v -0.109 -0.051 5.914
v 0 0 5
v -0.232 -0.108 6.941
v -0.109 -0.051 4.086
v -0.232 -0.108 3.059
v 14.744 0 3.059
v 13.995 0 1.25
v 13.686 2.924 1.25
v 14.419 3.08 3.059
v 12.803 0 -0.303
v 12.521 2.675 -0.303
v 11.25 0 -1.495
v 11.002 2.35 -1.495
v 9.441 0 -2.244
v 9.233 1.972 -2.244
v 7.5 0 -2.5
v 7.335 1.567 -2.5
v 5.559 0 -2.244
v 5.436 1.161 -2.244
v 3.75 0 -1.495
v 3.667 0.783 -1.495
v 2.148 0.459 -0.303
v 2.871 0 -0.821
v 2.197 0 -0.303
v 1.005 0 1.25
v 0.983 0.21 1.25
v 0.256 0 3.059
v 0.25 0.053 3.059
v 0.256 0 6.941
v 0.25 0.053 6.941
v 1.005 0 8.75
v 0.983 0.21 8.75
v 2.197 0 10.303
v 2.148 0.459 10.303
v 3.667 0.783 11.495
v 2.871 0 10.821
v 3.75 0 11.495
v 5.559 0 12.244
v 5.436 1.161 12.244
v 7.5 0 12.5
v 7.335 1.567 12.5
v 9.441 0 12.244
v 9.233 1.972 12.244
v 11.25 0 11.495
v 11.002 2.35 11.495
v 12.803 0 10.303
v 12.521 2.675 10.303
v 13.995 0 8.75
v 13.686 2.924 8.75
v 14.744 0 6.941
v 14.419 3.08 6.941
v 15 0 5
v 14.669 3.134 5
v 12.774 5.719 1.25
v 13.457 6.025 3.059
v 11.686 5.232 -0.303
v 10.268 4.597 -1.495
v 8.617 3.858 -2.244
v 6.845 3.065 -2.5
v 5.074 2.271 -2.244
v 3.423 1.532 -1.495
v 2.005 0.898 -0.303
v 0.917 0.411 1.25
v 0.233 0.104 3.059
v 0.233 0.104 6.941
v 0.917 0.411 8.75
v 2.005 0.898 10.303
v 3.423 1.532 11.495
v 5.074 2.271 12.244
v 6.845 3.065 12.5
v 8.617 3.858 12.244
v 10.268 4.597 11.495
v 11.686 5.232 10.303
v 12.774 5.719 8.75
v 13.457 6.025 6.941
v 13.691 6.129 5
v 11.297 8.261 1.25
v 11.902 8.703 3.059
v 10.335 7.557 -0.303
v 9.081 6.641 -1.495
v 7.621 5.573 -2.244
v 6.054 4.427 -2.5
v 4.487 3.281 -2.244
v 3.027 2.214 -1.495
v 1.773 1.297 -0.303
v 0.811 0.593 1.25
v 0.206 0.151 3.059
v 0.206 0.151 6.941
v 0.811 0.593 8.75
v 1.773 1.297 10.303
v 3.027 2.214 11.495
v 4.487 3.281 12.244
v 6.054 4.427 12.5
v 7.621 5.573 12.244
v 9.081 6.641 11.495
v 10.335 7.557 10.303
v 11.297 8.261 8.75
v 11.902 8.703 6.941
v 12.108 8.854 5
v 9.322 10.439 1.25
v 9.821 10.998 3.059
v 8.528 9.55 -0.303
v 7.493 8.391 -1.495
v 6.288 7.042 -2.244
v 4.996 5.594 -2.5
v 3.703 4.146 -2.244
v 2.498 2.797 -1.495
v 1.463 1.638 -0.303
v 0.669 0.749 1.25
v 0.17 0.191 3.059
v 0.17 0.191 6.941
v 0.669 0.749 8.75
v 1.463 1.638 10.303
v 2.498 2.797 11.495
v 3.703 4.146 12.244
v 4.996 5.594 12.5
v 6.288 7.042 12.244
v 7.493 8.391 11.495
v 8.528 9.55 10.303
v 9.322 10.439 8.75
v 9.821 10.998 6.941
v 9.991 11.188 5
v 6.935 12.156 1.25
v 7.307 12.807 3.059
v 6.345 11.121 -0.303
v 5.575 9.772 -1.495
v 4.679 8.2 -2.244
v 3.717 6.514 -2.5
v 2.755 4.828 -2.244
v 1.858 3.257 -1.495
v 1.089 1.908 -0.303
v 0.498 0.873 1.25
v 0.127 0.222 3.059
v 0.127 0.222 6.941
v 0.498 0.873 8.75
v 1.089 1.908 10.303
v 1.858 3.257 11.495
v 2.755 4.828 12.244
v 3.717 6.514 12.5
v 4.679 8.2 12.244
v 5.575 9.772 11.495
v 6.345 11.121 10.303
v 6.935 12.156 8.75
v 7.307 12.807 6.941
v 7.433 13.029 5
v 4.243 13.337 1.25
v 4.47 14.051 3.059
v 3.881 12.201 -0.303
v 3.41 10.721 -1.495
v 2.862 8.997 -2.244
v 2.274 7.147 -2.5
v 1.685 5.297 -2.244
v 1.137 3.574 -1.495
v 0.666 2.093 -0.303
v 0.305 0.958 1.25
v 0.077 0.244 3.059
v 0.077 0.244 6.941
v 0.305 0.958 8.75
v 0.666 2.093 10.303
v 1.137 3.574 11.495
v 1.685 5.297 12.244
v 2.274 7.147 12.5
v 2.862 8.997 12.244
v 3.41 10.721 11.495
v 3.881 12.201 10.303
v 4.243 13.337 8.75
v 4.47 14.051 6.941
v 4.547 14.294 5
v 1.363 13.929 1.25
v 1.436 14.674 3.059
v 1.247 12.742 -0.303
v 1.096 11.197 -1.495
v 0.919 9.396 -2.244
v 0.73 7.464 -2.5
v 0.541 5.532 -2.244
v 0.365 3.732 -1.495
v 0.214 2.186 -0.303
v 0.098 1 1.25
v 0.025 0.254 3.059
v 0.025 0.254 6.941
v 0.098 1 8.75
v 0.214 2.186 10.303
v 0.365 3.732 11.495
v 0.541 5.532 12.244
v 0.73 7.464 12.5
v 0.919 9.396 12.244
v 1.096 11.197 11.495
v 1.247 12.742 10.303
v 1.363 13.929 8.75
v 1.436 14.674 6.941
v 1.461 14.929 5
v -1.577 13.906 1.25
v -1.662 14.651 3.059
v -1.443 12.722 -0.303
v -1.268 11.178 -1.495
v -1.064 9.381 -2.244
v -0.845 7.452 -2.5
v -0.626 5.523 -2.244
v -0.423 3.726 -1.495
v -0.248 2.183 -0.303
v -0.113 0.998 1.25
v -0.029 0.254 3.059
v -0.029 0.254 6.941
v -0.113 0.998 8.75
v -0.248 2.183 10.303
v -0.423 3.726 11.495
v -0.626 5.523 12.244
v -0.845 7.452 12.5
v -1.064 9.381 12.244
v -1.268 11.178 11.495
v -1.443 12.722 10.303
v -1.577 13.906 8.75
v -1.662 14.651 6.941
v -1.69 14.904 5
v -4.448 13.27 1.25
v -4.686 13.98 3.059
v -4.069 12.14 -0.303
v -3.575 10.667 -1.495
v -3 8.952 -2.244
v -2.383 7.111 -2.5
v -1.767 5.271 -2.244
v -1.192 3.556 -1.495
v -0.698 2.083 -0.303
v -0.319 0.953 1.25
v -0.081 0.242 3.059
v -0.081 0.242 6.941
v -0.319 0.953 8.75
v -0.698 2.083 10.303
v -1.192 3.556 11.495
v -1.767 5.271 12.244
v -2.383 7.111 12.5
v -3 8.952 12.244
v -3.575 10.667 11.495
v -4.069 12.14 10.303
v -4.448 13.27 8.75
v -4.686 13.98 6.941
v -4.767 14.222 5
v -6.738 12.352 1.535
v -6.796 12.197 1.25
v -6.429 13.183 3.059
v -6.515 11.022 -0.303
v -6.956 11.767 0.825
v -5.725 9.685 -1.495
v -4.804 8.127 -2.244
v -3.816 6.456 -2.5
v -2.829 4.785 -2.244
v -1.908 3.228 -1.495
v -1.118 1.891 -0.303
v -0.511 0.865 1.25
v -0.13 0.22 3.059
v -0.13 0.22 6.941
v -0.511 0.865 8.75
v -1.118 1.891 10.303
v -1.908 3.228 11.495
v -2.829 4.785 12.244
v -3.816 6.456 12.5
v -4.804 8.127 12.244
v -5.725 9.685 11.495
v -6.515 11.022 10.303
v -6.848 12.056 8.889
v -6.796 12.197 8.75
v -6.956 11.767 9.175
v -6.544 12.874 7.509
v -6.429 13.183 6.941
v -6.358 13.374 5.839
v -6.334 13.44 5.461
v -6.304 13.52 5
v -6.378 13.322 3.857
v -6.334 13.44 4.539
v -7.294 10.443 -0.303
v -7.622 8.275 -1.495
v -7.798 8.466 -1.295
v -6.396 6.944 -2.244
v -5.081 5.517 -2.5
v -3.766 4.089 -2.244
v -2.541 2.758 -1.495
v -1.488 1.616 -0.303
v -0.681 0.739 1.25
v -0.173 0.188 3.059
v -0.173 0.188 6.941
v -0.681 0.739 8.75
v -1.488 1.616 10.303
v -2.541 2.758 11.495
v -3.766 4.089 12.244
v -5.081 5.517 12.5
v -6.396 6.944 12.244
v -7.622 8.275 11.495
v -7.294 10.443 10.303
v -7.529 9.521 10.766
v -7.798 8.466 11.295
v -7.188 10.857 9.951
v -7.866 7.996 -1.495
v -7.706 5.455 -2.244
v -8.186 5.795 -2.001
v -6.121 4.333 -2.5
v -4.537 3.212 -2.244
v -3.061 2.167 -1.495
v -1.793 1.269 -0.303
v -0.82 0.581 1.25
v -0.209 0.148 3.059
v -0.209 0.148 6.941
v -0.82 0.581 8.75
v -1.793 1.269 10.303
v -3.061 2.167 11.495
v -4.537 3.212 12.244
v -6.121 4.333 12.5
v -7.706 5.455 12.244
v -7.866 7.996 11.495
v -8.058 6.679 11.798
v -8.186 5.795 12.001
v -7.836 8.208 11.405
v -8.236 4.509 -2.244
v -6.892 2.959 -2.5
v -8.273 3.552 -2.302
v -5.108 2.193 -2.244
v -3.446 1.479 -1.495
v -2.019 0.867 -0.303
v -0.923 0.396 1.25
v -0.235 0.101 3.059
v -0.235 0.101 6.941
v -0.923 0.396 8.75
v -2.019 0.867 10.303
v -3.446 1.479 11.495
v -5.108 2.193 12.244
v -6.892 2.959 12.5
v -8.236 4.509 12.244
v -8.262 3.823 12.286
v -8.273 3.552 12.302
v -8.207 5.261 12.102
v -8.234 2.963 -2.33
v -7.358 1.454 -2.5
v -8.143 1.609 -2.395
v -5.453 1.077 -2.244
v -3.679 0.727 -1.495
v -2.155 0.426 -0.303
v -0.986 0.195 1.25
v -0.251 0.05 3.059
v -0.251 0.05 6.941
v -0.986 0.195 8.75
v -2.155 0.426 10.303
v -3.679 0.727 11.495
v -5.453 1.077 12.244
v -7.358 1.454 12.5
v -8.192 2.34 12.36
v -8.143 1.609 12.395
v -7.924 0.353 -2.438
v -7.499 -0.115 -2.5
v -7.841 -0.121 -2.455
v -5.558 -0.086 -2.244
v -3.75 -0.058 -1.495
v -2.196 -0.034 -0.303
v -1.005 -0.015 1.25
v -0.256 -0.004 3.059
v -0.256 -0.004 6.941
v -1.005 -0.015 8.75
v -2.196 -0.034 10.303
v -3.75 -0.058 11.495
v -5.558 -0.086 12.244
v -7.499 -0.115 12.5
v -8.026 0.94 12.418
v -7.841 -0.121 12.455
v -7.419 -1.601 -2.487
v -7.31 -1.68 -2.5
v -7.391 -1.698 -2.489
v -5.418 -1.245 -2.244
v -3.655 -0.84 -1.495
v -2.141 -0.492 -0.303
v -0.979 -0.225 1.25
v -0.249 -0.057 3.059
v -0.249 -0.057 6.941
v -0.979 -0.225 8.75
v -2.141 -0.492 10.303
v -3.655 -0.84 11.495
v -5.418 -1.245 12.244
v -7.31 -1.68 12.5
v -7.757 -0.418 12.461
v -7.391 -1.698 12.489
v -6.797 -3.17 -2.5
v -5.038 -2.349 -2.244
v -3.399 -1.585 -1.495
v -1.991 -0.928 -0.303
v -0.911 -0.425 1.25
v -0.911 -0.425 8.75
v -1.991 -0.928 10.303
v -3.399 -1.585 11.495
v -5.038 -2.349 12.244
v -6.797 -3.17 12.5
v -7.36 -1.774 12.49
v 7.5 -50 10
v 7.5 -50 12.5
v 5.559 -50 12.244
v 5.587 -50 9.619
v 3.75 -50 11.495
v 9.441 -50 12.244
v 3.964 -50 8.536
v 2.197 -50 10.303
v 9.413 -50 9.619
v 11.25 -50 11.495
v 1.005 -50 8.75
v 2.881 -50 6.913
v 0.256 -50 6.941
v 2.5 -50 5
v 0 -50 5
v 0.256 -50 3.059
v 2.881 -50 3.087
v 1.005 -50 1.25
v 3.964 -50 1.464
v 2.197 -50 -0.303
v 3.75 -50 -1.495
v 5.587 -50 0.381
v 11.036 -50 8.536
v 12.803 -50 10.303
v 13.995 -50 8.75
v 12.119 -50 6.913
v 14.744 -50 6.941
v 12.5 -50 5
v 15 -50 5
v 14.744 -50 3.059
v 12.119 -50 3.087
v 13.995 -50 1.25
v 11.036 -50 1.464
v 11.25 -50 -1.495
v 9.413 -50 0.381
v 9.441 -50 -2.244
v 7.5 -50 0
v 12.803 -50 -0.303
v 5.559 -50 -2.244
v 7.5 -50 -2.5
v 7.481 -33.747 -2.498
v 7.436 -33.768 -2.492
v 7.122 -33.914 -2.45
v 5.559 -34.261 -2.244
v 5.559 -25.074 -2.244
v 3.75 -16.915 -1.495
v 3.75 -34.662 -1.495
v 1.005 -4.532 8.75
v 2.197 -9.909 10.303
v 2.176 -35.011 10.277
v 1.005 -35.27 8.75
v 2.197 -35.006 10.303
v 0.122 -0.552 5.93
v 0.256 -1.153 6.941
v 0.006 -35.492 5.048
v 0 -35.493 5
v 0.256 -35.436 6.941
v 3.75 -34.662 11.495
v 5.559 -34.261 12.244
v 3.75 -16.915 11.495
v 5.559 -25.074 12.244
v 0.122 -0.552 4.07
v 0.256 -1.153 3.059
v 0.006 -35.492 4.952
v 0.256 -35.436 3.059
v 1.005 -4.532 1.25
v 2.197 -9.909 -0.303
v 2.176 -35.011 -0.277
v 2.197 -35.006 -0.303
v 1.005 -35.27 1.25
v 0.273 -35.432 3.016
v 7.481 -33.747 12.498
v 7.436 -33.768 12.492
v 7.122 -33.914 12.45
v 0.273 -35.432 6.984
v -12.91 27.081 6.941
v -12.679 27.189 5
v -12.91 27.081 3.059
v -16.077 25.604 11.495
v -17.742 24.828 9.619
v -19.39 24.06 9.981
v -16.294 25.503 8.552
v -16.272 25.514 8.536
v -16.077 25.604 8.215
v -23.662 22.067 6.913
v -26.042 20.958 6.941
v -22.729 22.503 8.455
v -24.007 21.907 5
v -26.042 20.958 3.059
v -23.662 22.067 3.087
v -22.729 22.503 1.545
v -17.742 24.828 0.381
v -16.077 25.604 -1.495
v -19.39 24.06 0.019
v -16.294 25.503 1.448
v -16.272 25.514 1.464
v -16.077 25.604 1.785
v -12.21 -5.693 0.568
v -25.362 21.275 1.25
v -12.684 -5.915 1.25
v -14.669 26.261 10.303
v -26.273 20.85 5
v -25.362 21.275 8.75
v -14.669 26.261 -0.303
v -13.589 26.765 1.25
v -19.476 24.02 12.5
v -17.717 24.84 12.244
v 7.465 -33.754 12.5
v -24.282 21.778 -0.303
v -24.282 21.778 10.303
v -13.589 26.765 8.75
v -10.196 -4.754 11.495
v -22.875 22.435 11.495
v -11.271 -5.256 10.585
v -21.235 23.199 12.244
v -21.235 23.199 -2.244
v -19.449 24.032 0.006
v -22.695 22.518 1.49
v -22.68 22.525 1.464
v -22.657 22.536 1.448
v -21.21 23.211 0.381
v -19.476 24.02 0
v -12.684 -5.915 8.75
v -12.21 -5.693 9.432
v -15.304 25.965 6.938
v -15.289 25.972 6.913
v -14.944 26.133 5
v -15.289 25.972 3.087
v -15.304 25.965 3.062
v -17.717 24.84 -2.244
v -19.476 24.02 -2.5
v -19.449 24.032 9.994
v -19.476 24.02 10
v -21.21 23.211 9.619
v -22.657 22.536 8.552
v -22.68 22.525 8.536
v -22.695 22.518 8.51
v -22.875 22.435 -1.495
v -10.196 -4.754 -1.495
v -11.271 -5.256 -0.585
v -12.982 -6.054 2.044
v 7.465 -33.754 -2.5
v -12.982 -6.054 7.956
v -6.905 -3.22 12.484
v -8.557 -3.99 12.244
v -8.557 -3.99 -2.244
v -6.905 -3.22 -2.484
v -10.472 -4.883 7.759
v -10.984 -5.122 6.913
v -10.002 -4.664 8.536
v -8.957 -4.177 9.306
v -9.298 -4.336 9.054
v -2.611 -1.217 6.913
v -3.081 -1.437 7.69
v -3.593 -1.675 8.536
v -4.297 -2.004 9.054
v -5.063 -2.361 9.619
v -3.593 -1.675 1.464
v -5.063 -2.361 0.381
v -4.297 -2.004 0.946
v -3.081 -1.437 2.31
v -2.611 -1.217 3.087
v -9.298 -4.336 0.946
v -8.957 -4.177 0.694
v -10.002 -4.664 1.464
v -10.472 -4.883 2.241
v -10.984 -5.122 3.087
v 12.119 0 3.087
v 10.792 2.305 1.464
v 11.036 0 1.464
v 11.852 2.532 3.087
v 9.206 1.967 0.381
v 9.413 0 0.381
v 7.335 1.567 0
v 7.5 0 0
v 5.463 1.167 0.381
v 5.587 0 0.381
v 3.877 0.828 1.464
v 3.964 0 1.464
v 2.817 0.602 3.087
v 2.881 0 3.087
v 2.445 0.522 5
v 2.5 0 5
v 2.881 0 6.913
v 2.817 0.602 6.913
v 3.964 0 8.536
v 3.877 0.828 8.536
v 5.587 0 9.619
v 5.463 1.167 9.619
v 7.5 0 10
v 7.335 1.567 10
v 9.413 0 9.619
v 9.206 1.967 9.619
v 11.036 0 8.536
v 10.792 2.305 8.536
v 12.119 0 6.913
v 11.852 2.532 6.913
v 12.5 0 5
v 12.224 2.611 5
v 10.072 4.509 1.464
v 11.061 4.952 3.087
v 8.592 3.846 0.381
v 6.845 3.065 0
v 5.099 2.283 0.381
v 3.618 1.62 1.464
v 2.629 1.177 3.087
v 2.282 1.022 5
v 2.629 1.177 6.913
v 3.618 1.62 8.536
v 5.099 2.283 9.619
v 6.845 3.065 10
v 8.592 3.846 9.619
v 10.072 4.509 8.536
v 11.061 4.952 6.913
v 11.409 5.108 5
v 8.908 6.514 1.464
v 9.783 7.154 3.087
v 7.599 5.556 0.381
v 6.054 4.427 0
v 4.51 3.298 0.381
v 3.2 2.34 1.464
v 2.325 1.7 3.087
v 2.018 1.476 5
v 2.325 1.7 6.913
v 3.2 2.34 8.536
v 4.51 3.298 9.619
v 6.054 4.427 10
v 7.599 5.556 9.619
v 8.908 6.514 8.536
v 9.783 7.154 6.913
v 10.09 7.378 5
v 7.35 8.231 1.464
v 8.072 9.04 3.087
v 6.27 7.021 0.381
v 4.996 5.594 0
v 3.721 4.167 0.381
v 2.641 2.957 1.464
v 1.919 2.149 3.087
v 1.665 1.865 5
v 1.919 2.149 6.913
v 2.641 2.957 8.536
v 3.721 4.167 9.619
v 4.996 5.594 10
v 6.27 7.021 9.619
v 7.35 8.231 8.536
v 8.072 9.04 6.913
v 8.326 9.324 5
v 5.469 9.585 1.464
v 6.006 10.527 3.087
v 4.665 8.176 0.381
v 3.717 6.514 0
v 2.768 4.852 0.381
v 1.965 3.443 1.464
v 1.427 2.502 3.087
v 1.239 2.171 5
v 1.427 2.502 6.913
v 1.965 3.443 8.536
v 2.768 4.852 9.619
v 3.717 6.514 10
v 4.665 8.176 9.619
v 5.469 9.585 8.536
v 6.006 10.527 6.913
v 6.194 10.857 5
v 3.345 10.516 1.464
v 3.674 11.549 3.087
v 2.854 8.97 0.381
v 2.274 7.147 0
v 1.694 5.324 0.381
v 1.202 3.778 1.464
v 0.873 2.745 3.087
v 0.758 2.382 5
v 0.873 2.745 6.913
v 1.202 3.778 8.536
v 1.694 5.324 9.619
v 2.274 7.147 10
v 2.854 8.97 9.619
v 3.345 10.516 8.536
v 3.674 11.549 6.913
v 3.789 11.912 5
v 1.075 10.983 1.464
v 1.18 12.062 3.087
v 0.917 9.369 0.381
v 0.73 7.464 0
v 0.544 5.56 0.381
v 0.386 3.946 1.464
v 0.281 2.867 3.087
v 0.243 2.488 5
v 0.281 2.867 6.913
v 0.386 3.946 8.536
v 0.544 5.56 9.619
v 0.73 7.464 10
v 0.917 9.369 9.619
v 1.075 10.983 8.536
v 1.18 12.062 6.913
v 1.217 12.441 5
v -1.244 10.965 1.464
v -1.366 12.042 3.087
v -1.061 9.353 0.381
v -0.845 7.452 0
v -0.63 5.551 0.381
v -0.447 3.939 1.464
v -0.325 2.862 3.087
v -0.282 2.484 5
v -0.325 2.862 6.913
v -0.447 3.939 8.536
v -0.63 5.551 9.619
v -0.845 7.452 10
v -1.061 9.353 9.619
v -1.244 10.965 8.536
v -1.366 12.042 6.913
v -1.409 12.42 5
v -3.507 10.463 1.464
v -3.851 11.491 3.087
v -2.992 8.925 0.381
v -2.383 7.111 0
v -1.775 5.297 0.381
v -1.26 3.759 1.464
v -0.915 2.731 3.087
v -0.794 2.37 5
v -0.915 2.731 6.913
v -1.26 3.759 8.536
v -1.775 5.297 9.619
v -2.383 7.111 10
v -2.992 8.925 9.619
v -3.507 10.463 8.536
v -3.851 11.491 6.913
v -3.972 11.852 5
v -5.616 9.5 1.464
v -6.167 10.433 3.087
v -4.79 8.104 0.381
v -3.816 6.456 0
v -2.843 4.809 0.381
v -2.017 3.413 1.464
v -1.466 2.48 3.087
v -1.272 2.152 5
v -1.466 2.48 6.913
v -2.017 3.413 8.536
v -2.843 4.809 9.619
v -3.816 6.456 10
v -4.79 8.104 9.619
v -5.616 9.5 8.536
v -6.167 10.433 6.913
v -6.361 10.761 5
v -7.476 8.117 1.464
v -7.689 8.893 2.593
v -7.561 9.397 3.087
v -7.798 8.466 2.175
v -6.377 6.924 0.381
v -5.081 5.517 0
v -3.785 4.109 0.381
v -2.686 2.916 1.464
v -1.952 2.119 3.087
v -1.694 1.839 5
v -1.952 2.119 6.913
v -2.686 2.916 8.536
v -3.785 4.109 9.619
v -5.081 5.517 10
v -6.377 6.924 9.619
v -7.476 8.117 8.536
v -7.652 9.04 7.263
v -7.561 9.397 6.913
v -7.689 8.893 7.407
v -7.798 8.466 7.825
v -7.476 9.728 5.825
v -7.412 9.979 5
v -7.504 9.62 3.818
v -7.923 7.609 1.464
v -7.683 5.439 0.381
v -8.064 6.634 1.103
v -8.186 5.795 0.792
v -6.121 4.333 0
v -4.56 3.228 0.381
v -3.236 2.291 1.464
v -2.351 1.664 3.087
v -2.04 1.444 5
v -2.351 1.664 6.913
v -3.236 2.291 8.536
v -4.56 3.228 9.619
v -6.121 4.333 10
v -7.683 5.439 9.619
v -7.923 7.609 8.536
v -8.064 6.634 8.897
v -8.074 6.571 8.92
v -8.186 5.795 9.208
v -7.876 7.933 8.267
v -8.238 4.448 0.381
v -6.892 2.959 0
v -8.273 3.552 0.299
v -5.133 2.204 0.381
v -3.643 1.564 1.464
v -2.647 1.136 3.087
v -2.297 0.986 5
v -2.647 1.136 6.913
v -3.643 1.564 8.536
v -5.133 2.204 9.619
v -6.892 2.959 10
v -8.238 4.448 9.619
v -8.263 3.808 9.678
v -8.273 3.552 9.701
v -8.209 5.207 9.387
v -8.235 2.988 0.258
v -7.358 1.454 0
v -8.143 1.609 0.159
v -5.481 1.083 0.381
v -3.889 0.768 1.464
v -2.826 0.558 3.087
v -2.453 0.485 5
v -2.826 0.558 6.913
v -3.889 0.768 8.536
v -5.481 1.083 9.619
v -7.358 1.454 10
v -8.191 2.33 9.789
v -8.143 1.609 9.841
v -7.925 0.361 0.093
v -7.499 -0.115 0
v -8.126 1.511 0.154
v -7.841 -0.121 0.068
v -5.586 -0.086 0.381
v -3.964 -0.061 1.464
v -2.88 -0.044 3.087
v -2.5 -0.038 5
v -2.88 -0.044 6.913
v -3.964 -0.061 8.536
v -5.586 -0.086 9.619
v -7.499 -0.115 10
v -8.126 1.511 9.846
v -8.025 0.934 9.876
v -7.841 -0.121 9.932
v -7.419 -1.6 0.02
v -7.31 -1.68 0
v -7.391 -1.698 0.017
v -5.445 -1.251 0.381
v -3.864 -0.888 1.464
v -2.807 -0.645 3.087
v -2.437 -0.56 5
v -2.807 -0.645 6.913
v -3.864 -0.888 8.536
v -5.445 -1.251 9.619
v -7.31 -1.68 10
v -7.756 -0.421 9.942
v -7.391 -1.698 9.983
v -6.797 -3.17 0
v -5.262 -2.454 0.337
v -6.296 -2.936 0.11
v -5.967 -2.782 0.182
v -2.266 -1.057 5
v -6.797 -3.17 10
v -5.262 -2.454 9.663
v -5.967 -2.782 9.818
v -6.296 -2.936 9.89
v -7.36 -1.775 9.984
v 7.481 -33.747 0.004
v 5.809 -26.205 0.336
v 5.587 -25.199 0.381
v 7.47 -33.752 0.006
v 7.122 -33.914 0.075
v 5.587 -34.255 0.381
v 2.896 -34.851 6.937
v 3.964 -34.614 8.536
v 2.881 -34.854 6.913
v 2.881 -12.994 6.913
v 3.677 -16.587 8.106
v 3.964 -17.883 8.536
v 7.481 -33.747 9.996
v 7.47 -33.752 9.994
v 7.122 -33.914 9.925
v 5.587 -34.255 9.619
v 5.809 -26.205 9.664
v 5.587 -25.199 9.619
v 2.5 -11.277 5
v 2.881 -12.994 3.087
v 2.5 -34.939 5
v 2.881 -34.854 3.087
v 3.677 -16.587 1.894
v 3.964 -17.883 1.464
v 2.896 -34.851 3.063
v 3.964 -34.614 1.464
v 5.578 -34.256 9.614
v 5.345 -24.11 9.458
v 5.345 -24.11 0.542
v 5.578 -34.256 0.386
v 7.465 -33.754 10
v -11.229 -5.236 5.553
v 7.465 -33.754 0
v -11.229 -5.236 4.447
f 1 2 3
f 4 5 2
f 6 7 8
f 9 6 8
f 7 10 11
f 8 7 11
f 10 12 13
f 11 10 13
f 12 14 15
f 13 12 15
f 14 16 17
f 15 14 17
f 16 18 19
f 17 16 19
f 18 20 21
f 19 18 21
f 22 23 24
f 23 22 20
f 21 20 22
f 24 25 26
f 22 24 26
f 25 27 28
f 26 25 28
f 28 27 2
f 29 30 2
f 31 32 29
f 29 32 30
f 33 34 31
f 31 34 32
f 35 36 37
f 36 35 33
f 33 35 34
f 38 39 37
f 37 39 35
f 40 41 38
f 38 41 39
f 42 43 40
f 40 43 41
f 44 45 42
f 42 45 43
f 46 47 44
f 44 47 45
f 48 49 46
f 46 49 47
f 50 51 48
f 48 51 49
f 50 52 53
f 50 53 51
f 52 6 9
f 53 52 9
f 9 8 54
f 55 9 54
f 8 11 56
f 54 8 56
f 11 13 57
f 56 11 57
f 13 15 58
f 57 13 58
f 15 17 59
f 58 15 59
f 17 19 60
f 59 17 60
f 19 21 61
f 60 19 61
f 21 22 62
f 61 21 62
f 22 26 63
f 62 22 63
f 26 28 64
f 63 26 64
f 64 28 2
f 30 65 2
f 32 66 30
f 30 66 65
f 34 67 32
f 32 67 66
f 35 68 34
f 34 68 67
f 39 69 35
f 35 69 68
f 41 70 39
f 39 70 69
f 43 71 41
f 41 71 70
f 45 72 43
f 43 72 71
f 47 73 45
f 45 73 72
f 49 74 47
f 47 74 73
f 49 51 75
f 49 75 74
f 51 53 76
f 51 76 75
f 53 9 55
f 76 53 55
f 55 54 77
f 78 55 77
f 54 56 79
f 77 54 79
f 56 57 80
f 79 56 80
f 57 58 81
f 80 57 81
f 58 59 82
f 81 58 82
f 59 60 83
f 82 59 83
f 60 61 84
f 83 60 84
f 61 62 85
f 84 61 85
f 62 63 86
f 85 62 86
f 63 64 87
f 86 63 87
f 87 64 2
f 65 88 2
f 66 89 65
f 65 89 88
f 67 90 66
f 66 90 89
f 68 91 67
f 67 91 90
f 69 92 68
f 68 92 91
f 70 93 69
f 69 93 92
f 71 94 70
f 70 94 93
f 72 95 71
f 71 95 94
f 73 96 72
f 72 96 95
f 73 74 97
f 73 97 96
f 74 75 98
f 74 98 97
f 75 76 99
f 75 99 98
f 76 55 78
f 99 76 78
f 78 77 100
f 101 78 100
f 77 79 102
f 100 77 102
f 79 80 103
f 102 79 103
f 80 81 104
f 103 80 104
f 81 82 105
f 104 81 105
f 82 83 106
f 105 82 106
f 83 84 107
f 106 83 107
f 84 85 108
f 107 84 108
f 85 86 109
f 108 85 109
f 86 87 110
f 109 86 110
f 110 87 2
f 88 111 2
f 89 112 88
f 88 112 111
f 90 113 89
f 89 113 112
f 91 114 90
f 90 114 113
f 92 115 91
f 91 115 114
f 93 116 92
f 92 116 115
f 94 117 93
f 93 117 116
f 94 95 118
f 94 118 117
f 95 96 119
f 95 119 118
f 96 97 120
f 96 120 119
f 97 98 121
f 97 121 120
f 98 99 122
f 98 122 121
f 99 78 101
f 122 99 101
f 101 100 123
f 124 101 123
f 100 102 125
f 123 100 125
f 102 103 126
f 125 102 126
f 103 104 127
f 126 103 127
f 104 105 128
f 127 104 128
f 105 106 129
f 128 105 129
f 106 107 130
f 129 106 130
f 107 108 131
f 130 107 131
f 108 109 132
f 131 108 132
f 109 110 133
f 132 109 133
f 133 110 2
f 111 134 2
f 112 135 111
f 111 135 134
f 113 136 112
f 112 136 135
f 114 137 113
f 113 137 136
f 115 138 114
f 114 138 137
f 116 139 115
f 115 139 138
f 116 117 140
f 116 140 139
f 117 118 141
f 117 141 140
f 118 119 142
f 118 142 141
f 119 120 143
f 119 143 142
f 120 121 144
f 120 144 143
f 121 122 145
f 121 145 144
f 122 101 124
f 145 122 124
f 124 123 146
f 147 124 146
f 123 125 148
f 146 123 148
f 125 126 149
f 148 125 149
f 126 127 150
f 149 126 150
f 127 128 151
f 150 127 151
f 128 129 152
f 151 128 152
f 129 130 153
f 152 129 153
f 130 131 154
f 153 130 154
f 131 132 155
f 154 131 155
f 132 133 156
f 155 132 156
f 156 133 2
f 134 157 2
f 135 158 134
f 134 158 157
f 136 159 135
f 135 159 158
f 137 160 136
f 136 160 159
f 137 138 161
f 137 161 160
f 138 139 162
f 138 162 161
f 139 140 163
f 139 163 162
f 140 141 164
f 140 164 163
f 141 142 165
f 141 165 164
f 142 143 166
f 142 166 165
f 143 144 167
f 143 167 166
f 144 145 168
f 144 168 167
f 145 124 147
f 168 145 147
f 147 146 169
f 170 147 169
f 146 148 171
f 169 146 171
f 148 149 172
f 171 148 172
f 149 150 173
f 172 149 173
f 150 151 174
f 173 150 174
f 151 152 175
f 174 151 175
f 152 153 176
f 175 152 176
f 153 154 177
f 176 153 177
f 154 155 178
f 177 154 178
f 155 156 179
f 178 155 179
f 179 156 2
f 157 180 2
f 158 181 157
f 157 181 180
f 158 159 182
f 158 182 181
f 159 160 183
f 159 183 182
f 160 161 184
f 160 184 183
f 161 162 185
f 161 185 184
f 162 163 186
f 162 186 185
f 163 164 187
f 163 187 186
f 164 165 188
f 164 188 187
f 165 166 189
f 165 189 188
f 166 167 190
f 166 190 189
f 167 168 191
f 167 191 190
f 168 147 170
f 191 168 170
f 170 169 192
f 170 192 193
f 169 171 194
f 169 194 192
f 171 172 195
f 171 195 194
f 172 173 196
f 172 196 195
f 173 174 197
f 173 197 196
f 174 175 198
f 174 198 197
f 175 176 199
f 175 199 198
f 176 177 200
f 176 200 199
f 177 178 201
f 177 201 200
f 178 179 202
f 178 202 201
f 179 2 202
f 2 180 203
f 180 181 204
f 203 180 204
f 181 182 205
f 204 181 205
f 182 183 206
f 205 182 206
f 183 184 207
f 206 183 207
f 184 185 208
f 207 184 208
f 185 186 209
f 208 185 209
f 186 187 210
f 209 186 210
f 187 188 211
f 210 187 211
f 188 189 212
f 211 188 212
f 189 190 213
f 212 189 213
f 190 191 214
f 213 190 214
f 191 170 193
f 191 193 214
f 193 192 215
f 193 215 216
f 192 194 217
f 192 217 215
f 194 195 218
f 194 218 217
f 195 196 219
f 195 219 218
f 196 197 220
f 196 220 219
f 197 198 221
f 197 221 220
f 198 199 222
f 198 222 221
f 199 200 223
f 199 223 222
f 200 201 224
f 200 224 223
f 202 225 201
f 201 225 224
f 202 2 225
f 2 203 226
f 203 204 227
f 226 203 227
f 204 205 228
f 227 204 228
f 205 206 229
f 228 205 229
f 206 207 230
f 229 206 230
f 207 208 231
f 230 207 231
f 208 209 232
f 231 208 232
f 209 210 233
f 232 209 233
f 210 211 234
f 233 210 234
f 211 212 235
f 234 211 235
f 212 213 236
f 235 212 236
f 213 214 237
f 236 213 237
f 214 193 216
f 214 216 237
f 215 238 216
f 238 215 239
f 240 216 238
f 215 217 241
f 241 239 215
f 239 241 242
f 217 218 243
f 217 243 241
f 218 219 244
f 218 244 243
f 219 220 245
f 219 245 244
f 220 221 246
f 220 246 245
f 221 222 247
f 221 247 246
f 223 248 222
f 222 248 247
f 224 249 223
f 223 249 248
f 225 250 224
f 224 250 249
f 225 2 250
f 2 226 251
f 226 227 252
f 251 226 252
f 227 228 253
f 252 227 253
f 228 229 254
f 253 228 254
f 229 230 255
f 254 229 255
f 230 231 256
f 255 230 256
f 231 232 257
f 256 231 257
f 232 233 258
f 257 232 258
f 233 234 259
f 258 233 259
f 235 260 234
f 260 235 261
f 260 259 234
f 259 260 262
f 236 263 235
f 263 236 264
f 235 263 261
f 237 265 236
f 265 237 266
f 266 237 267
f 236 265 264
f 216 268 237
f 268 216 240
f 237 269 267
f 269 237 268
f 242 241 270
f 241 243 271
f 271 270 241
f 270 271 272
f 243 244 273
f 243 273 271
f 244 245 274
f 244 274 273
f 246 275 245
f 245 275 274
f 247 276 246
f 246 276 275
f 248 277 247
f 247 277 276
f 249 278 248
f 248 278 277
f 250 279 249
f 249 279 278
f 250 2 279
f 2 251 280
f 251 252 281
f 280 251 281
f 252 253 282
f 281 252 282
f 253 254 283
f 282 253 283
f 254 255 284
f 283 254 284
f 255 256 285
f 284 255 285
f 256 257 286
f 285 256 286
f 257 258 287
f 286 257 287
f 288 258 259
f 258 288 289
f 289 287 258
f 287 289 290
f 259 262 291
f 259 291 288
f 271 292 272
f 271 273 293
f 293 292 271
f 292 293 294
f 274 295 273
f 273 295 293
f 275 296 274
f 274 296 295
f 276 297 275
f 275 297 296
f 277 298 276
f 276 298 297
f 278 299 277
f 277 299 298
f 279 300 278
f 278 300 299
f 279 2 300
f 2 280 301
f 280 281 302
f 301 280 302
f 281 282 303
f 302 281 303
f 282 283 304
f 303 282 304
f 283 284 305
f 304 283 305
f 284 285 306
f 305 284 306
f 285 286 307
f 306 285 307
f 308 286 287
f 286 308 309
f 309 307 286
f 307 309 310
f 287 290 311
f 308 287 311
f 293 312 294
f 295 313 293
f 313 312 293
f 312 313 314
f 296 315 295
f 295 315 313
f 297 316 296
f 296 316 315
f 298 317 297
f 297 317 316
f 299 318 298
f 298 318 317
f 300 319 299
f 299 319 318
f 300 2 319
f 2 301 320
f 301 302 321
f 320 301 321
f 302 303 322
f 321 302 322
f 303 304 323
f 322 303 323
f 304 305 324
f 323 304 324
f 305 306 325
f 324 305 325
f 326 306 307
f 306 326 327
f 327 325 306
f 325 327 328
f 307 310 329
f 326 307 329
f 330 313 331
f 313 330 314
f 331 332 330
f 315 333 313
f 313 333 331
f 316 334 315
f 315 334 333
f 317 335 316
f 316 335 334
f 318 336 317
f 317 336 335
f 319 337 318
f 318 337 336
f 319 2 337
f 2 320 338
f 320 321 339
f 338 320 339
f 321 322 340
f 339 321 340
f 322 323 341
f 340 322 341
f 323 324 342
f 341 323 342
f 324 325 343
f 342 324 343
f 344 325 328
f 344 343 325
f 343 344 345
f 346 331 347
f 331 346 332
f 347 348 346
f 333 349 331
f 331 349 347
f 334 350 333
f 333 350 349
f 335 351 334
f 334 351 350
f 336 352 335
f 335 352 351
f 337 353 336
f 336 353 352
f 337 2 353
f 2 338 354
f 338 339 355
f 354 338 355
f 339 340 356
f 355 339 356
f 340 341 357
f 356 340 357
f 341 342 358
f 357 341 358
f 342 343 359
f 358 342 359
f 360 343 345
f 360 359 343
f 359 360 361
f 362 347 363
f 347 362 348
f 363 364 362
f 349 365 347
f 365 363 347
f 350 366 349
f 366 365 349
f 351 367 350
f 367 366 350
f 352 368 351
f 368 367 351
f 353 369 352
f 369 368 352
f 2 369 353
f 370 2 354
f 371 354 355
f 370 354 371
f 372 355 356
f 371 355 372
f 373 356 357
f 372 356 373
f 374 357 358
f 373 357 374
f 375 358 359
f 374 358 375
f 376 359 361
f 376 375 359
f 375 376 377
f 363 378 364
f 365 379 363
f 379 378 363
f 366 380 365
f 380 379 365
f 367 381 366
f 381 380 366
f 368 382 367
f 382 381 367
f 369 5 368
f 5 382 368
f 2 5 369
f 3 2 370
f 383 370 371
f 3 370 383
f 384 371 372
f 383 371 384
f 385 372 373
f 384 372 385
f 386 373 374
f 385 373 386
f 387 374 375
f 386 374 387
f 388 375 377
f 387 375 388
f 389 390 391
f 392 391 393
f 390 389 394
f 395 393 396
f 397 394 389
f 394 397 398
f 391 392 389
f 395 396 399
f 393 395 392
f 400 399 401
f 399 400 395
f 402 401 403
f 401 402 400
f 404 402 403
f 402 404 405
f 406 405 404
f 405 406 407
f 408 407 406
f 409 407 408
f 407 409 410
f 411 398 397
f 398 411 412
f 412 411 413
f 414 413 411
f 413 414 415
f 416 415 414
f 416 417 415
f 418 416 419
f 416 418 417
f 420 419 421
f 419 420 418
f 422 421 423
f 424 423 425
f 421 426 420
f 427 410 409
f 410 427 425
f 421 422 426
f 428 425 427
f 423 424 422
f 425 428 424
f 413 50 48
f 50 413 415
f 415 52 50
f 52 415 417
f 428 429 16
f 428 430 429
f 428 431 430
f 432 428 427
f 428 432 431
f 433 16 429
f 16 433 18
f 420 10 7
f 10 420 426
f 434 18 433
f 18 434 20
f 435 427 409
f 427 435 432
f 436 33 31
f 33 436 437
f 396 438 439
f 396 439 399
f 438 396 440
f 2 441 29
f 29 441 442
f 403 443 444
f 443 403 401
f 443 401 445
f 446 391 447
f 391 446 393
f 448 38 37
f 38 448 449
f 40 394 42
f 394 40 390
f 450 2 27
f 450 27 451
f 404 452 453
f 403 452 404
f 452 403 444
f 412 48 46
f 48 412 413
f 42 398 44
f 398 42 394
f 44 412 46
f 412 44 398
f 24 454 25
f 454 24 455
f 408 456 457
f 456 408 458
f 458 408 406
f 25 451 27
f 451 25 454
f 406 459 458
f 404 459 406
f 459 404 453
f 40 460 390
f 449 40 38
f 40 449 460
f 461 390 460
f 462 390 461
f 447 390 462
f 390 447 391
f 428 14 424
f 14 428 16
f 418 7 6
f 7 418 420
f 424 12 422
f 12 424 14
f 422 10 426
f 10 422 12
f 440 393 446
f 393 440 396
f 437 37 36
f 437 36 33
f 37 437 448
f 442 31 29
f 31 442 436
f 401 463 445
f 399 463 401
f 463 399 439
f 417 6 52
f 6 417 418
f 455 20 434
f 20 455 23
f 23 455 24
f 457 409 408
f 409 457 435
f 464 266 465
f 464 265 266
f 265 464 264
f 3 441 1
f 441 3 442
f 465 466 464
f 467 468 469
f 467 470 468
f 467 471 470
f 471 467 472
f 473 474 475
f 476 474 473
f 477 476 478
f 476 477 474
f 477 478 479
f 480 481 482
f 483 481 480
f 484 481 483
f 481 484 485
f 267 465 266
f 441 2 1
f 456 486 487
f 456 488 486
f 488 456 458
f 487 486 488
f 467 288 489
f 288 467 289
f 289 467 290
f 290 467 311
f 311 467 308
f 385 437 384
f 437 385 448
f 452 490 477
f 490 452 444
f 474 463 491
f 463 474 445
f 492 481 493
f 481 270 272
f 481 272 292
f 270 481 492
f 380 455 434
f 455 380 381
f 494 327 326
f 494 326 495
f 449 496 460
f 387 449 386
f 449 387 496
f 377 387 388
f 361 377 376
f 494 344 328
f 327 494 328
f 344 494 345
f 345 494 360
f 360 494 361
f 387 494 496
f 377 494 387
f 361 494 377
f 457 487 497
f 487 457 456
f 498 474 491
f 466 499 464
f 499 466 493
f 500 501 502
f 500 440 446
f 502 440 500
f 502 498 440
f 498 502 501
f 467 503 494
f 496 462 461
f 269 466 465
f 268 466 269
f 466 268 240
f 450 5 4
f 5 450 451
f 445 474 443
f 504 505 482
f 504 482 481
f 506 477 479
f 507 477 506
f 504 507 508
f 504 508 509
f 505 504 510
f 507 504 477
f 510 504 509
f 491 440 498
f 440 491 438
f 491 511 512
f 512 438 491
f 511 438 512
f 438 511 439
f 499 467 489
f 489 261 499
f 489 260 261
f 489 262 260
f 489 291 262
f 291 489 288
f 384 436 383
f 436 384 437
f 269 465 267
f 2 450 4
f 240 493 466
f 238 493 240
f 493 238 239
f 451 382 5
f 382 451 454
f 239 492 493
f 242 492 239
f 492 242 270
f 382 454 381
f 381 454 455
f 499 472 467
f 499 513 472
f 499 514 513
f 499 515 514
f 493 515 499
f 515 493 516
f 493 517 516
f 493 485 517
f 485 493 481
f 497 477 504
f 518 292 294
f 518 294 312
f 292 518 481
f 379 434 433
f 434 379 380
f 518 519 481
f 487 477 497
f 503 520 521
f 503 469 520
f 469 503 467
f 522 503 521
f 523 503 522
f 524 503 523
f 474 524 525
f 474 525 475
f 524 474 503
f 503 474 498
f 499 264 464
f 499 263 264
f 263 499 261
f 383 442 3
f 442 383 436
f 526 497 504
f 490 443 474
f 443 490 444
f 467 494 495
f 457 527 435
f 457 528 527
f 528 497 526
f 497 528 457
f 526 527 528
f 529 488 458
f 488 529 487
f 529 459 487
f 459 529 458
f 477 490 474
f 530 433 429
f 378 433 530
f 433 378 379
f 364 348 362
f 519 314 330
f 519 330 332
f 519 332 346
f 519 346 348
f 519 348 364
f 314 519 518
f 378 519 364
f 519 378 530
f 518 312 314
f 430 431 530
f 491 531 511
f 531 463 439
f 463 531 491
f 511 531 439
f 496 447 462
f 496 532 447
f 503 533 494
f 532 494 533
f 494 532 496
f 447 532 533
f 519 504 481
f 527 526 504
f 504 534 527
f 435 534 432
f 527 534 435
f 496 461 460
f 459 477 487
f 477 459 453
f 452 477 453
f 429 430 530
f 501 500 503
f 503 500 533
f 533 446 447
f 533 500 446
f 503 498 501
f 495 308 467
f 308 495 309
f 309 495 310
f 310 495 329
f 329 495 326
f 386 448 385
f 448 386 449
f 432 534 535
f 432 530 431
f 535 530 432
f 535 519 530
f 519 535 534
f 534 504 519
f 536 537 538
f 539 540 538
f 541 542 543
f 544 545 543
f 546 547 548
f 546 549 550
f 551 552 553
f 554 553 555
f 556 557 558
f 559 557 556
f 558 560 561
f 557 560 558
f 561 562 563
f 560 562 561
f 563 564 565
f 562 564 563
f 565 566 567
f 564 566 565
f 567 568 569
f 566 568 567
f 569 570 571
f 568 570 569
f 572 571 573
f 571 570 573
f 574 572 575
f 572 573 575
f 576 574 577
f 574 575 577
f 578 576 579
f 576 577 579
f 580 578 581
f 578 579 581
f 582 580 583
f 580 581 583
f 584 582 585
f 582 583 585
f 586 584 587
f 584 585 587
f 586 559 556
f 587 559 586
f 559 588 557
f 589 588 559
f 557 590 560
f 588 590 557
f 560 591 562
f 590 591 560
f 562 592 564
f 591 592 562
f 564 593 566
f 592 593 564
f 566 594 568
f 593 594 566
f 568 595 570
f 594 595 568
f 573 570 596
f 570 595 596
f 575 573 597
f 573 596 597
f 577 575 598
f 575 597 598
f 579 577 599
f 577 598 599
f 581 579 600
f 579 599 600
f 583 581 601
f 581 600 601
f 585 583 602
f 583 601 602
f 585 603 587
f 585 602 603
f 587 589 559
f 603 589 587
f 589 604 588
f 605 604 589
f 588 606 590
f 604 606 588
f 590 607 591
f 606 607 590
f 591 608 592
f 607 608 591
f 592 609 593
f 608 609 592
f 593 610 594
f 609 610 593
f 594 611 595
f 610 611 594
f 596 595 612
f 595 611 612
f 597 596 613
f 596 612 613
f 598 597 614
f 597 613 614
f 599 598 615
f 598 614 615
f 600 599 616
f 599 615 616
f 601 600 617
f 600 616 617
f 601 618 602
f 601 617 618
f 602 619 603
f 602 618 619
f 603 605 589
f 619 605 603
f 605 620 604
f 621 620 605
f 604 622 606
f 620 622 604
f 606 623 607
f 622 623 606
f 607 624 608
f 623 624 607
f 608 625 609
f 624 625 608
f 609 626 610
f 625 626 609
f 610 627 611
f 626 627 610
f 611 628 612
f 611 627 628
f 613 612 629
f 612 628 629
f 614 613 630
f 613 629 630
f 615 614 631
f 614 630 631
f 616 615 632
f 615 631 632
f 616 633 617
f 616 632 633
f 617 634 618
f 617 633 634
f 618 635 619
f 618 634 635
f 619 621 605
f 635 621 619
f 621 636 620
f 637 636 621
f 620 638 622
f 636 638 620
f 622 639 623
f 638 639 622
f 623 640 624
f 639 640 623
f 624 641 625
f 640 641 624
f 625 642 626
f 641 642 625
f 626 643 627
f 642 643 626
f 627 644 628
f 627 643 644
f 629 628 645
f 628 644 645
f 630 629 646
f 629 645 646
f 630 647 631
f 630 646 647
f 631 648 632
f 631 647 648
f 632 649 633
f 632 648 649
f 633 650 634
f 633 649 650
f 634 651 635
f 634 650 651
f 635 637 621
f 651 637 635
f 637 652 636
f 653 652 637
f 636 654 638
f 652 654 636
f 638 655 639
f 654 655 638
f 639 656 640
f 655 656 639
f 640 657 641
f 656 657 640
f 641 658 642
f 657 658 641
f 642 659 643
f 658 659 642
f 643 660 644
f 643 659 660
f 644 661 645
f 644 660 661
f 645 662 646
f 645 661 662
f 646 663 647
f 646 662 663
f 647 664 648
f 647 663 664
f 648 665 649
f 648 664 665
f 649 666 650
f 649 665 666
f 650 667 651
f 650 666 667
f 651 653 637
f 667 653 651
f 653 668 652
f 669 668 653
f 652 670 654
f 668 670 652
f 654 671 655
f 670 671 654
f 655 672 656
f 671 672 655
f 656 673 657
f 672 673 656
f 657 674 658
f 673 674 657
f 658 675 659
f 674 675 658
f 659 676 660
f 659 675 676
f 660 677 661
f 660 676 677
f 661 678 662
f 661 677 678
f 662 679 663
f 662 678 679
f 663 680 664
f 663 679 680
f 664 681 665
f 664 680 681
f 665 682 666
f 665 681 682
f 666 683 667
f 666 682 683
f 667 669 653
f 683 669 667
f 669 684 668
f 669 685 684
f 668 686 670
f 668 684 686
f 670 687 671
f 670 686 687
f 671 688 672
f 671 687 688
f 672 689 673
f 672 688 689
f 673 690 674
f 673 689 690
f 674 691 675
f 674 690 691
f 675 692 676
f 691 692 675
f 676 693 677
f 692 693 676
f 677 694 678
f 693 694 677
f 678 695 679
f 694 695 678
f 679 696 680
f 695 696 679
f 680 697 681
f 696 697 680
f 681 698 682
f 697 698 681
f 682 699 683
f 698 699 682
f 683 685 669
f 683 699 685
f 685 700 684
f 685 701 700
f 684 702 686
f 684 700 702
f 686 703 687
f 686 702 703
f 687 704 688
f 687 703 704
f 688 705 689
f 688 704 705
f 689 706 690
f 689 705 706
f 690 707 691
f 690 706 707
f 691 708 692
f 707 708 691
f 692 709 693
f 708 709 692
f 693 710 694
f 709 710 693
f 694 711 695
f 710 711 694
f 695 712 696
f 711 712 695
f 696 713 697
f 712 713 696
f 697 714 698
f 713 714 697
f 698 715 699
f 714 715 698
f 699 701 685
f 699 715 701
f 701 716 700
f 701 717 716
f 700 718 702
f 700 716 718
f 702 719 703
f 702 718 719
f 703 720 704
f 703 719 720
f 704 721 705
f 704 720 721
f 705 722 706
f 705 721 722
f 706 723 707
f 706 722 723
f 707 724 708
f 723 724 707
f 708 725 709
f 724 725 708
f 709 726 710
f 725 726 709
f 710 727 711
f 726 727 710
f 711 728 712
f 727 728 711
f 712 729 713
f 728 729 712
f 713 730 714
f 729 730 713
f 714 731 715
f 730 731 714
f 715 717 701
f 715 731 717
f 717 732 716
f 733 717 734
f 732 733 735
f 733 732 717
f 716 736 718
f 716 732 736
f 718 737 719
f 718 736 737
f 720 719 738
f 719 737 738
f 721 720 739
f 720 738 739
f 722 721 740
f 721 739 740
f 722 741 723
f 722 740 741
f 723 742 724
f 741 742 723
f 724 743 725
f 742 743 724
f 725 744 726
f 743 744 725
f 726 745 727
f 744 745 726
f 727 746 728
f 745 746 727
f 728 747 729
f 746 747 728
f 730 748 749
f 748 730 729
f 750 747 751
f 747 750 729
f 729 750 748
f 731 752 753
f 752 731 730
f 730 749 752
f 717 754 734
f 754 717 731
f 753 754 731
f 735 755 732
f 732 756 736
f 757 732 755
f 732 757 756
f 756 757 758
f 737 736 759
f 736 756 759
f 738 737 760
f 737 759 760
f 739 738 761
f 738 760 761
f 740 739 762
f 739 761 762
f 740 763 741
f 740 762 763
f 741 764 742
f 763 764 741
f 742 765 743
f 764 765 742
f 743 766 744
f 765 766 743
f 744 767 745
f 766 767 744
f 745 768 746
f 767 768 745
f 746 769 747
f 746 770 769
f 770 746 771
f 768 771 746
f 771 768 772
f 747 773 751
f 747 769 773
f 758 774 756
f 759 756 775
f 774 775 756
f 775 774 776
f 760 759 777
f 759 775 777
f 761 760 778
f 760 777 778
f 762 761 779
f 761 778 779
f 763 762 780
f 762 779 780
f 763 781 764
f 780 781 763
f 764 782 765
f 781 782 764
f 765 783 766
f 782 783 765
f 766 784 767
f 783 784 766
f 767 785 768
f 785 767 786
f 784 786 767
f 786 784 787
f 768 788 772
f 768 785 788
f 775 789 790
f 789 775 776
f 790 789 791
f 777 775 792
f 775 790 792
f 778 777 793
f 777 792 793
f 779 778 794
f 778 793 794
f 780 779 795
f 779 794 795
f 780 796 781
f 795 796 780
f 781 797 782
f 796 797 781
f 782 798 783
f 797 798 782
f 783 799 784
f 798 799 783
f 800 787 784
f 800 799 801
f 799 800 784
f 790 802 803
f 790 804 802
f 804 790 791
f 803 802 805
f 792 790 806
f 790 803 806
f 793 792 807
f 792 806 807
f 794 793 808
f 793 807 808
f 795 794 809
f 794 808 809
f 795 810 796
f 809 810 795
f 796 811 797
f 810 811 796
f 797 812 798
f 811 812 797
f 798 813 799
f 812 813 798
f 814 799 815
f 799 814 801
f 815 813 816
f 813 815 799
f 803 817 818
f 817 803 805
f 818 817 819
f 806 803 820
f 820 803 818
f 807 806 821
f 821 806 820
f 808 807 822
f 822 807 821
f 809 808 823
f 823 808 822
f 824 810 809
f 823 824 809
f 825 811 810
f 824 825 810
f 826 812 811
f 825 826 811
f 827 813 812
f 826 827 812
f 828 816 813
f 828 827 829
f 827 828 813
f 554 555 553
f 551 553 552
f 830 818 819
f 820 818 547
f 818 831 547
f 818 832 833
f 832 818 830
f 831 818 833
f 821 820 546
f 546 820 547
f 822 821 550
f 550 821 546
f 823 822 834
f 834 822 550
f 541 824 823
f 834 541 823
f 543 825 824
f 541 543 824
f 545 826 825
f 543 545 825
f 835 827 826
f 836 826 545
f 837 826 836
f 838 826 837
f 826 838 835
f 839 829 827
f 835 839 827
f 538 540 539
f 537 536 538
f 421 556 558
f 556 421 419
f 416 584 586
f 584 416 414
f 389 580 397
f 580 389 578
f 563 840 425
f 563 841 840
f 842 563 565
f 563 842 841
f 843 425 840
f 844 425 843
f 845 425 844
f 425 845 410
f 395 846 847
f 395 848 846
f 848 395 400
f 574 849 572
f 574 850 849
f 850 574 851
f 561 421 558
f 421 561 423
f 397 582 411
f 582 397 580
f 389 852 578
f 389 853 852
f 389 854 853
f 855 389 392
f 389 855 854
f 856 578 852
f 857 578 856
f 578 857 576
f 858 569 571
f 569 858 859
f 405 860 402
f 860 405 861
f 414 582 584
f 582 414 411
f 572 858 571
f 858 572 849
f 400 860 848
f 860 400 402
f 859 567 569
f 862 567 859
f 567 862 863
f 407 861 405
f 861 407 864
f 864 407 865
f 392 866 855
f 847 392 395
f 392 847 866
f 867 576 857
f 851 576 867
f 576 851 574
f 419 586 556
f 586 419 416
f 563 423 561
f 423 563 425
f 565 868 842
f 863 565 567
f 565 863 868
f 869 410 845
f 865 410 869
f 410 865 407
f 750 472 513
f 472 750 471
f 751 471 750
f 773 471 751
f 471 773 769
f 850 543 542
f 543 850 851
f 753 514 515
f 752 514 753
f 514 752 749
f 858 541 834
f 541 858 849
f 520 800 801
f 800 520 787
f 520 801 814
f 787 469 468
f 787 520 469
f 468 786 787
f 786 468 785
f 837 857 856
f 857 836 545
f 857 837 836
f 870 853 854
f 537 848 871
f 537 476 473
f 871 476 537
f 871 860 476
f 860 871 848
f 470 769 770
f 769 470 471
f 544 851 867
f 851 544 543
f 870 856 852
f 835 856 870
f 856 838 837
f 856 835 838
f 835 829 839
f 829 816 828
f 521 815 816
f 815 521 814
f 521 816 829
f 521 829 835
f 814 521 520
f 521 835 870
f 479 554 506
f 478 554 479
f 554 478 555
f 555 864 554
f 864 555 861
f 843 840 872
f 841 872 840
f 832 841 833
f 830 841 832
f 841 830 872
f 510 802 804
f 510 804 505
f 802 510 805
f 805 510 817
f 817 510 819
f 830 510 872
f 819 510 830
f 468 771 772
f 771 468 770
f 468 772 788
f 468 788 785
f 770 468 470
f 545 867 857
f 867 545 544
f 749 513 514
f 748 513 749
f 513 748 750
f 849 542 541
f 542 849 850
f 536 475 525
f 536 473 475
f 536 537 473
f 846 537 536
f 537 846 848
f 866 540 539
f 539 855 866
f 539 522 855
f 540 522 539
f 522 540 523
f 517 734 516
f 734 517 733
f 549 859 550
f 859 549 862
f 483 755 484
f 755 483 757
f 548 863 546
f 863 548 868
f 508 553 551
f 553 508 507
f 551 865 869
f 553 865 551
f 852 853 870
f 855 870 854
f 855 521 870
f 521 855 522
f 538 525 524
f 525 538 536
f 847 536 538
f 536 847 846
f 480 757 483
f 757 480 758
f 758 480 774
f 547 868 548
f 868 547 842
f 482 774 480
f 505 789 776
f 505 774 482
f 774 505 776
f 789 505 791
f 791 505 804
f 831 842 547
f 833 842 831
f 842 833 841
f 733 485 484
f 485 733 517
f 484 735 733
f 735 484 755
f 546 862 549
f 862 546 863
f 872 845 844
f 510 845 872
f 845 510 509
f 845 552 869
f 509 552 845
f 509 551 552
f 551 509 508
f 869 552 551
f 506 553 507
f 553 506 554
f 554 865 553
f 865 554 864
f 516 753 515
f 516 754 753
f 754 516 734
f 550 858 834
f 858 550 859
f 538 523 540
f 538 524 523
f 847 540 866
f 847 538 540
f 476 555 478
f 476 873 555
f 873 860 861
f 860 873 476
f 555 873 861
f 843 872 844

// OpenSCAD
module tesla(tube_diameter = 10,angulo = 45,in_large = 30,out_large = 50,angle_diameter=15)
translate([0,0,5]){


rotate_extrude(angle=180+angulo)
translate([angle_diameter/2,0,0])
circle(d=tube_diameter);

translate([angle_diameter/2,0,0])
rotate([90,0,0])
cylinder(d=tube_diameter, h=out_large);

rotate([0,0,angulo])
translate([-angle_diameter/2,in_large,0])
rotate([90,0,0])
cylinder(d=tube_diameter, h=in_large+(angle_diameter/2+sin(angulo)*angle_diameter/2)/sin(angulo)+8.5);
}

difference(){
tesla(15,25,30,50,15);
tesla(10,25,31,51,15);
}
